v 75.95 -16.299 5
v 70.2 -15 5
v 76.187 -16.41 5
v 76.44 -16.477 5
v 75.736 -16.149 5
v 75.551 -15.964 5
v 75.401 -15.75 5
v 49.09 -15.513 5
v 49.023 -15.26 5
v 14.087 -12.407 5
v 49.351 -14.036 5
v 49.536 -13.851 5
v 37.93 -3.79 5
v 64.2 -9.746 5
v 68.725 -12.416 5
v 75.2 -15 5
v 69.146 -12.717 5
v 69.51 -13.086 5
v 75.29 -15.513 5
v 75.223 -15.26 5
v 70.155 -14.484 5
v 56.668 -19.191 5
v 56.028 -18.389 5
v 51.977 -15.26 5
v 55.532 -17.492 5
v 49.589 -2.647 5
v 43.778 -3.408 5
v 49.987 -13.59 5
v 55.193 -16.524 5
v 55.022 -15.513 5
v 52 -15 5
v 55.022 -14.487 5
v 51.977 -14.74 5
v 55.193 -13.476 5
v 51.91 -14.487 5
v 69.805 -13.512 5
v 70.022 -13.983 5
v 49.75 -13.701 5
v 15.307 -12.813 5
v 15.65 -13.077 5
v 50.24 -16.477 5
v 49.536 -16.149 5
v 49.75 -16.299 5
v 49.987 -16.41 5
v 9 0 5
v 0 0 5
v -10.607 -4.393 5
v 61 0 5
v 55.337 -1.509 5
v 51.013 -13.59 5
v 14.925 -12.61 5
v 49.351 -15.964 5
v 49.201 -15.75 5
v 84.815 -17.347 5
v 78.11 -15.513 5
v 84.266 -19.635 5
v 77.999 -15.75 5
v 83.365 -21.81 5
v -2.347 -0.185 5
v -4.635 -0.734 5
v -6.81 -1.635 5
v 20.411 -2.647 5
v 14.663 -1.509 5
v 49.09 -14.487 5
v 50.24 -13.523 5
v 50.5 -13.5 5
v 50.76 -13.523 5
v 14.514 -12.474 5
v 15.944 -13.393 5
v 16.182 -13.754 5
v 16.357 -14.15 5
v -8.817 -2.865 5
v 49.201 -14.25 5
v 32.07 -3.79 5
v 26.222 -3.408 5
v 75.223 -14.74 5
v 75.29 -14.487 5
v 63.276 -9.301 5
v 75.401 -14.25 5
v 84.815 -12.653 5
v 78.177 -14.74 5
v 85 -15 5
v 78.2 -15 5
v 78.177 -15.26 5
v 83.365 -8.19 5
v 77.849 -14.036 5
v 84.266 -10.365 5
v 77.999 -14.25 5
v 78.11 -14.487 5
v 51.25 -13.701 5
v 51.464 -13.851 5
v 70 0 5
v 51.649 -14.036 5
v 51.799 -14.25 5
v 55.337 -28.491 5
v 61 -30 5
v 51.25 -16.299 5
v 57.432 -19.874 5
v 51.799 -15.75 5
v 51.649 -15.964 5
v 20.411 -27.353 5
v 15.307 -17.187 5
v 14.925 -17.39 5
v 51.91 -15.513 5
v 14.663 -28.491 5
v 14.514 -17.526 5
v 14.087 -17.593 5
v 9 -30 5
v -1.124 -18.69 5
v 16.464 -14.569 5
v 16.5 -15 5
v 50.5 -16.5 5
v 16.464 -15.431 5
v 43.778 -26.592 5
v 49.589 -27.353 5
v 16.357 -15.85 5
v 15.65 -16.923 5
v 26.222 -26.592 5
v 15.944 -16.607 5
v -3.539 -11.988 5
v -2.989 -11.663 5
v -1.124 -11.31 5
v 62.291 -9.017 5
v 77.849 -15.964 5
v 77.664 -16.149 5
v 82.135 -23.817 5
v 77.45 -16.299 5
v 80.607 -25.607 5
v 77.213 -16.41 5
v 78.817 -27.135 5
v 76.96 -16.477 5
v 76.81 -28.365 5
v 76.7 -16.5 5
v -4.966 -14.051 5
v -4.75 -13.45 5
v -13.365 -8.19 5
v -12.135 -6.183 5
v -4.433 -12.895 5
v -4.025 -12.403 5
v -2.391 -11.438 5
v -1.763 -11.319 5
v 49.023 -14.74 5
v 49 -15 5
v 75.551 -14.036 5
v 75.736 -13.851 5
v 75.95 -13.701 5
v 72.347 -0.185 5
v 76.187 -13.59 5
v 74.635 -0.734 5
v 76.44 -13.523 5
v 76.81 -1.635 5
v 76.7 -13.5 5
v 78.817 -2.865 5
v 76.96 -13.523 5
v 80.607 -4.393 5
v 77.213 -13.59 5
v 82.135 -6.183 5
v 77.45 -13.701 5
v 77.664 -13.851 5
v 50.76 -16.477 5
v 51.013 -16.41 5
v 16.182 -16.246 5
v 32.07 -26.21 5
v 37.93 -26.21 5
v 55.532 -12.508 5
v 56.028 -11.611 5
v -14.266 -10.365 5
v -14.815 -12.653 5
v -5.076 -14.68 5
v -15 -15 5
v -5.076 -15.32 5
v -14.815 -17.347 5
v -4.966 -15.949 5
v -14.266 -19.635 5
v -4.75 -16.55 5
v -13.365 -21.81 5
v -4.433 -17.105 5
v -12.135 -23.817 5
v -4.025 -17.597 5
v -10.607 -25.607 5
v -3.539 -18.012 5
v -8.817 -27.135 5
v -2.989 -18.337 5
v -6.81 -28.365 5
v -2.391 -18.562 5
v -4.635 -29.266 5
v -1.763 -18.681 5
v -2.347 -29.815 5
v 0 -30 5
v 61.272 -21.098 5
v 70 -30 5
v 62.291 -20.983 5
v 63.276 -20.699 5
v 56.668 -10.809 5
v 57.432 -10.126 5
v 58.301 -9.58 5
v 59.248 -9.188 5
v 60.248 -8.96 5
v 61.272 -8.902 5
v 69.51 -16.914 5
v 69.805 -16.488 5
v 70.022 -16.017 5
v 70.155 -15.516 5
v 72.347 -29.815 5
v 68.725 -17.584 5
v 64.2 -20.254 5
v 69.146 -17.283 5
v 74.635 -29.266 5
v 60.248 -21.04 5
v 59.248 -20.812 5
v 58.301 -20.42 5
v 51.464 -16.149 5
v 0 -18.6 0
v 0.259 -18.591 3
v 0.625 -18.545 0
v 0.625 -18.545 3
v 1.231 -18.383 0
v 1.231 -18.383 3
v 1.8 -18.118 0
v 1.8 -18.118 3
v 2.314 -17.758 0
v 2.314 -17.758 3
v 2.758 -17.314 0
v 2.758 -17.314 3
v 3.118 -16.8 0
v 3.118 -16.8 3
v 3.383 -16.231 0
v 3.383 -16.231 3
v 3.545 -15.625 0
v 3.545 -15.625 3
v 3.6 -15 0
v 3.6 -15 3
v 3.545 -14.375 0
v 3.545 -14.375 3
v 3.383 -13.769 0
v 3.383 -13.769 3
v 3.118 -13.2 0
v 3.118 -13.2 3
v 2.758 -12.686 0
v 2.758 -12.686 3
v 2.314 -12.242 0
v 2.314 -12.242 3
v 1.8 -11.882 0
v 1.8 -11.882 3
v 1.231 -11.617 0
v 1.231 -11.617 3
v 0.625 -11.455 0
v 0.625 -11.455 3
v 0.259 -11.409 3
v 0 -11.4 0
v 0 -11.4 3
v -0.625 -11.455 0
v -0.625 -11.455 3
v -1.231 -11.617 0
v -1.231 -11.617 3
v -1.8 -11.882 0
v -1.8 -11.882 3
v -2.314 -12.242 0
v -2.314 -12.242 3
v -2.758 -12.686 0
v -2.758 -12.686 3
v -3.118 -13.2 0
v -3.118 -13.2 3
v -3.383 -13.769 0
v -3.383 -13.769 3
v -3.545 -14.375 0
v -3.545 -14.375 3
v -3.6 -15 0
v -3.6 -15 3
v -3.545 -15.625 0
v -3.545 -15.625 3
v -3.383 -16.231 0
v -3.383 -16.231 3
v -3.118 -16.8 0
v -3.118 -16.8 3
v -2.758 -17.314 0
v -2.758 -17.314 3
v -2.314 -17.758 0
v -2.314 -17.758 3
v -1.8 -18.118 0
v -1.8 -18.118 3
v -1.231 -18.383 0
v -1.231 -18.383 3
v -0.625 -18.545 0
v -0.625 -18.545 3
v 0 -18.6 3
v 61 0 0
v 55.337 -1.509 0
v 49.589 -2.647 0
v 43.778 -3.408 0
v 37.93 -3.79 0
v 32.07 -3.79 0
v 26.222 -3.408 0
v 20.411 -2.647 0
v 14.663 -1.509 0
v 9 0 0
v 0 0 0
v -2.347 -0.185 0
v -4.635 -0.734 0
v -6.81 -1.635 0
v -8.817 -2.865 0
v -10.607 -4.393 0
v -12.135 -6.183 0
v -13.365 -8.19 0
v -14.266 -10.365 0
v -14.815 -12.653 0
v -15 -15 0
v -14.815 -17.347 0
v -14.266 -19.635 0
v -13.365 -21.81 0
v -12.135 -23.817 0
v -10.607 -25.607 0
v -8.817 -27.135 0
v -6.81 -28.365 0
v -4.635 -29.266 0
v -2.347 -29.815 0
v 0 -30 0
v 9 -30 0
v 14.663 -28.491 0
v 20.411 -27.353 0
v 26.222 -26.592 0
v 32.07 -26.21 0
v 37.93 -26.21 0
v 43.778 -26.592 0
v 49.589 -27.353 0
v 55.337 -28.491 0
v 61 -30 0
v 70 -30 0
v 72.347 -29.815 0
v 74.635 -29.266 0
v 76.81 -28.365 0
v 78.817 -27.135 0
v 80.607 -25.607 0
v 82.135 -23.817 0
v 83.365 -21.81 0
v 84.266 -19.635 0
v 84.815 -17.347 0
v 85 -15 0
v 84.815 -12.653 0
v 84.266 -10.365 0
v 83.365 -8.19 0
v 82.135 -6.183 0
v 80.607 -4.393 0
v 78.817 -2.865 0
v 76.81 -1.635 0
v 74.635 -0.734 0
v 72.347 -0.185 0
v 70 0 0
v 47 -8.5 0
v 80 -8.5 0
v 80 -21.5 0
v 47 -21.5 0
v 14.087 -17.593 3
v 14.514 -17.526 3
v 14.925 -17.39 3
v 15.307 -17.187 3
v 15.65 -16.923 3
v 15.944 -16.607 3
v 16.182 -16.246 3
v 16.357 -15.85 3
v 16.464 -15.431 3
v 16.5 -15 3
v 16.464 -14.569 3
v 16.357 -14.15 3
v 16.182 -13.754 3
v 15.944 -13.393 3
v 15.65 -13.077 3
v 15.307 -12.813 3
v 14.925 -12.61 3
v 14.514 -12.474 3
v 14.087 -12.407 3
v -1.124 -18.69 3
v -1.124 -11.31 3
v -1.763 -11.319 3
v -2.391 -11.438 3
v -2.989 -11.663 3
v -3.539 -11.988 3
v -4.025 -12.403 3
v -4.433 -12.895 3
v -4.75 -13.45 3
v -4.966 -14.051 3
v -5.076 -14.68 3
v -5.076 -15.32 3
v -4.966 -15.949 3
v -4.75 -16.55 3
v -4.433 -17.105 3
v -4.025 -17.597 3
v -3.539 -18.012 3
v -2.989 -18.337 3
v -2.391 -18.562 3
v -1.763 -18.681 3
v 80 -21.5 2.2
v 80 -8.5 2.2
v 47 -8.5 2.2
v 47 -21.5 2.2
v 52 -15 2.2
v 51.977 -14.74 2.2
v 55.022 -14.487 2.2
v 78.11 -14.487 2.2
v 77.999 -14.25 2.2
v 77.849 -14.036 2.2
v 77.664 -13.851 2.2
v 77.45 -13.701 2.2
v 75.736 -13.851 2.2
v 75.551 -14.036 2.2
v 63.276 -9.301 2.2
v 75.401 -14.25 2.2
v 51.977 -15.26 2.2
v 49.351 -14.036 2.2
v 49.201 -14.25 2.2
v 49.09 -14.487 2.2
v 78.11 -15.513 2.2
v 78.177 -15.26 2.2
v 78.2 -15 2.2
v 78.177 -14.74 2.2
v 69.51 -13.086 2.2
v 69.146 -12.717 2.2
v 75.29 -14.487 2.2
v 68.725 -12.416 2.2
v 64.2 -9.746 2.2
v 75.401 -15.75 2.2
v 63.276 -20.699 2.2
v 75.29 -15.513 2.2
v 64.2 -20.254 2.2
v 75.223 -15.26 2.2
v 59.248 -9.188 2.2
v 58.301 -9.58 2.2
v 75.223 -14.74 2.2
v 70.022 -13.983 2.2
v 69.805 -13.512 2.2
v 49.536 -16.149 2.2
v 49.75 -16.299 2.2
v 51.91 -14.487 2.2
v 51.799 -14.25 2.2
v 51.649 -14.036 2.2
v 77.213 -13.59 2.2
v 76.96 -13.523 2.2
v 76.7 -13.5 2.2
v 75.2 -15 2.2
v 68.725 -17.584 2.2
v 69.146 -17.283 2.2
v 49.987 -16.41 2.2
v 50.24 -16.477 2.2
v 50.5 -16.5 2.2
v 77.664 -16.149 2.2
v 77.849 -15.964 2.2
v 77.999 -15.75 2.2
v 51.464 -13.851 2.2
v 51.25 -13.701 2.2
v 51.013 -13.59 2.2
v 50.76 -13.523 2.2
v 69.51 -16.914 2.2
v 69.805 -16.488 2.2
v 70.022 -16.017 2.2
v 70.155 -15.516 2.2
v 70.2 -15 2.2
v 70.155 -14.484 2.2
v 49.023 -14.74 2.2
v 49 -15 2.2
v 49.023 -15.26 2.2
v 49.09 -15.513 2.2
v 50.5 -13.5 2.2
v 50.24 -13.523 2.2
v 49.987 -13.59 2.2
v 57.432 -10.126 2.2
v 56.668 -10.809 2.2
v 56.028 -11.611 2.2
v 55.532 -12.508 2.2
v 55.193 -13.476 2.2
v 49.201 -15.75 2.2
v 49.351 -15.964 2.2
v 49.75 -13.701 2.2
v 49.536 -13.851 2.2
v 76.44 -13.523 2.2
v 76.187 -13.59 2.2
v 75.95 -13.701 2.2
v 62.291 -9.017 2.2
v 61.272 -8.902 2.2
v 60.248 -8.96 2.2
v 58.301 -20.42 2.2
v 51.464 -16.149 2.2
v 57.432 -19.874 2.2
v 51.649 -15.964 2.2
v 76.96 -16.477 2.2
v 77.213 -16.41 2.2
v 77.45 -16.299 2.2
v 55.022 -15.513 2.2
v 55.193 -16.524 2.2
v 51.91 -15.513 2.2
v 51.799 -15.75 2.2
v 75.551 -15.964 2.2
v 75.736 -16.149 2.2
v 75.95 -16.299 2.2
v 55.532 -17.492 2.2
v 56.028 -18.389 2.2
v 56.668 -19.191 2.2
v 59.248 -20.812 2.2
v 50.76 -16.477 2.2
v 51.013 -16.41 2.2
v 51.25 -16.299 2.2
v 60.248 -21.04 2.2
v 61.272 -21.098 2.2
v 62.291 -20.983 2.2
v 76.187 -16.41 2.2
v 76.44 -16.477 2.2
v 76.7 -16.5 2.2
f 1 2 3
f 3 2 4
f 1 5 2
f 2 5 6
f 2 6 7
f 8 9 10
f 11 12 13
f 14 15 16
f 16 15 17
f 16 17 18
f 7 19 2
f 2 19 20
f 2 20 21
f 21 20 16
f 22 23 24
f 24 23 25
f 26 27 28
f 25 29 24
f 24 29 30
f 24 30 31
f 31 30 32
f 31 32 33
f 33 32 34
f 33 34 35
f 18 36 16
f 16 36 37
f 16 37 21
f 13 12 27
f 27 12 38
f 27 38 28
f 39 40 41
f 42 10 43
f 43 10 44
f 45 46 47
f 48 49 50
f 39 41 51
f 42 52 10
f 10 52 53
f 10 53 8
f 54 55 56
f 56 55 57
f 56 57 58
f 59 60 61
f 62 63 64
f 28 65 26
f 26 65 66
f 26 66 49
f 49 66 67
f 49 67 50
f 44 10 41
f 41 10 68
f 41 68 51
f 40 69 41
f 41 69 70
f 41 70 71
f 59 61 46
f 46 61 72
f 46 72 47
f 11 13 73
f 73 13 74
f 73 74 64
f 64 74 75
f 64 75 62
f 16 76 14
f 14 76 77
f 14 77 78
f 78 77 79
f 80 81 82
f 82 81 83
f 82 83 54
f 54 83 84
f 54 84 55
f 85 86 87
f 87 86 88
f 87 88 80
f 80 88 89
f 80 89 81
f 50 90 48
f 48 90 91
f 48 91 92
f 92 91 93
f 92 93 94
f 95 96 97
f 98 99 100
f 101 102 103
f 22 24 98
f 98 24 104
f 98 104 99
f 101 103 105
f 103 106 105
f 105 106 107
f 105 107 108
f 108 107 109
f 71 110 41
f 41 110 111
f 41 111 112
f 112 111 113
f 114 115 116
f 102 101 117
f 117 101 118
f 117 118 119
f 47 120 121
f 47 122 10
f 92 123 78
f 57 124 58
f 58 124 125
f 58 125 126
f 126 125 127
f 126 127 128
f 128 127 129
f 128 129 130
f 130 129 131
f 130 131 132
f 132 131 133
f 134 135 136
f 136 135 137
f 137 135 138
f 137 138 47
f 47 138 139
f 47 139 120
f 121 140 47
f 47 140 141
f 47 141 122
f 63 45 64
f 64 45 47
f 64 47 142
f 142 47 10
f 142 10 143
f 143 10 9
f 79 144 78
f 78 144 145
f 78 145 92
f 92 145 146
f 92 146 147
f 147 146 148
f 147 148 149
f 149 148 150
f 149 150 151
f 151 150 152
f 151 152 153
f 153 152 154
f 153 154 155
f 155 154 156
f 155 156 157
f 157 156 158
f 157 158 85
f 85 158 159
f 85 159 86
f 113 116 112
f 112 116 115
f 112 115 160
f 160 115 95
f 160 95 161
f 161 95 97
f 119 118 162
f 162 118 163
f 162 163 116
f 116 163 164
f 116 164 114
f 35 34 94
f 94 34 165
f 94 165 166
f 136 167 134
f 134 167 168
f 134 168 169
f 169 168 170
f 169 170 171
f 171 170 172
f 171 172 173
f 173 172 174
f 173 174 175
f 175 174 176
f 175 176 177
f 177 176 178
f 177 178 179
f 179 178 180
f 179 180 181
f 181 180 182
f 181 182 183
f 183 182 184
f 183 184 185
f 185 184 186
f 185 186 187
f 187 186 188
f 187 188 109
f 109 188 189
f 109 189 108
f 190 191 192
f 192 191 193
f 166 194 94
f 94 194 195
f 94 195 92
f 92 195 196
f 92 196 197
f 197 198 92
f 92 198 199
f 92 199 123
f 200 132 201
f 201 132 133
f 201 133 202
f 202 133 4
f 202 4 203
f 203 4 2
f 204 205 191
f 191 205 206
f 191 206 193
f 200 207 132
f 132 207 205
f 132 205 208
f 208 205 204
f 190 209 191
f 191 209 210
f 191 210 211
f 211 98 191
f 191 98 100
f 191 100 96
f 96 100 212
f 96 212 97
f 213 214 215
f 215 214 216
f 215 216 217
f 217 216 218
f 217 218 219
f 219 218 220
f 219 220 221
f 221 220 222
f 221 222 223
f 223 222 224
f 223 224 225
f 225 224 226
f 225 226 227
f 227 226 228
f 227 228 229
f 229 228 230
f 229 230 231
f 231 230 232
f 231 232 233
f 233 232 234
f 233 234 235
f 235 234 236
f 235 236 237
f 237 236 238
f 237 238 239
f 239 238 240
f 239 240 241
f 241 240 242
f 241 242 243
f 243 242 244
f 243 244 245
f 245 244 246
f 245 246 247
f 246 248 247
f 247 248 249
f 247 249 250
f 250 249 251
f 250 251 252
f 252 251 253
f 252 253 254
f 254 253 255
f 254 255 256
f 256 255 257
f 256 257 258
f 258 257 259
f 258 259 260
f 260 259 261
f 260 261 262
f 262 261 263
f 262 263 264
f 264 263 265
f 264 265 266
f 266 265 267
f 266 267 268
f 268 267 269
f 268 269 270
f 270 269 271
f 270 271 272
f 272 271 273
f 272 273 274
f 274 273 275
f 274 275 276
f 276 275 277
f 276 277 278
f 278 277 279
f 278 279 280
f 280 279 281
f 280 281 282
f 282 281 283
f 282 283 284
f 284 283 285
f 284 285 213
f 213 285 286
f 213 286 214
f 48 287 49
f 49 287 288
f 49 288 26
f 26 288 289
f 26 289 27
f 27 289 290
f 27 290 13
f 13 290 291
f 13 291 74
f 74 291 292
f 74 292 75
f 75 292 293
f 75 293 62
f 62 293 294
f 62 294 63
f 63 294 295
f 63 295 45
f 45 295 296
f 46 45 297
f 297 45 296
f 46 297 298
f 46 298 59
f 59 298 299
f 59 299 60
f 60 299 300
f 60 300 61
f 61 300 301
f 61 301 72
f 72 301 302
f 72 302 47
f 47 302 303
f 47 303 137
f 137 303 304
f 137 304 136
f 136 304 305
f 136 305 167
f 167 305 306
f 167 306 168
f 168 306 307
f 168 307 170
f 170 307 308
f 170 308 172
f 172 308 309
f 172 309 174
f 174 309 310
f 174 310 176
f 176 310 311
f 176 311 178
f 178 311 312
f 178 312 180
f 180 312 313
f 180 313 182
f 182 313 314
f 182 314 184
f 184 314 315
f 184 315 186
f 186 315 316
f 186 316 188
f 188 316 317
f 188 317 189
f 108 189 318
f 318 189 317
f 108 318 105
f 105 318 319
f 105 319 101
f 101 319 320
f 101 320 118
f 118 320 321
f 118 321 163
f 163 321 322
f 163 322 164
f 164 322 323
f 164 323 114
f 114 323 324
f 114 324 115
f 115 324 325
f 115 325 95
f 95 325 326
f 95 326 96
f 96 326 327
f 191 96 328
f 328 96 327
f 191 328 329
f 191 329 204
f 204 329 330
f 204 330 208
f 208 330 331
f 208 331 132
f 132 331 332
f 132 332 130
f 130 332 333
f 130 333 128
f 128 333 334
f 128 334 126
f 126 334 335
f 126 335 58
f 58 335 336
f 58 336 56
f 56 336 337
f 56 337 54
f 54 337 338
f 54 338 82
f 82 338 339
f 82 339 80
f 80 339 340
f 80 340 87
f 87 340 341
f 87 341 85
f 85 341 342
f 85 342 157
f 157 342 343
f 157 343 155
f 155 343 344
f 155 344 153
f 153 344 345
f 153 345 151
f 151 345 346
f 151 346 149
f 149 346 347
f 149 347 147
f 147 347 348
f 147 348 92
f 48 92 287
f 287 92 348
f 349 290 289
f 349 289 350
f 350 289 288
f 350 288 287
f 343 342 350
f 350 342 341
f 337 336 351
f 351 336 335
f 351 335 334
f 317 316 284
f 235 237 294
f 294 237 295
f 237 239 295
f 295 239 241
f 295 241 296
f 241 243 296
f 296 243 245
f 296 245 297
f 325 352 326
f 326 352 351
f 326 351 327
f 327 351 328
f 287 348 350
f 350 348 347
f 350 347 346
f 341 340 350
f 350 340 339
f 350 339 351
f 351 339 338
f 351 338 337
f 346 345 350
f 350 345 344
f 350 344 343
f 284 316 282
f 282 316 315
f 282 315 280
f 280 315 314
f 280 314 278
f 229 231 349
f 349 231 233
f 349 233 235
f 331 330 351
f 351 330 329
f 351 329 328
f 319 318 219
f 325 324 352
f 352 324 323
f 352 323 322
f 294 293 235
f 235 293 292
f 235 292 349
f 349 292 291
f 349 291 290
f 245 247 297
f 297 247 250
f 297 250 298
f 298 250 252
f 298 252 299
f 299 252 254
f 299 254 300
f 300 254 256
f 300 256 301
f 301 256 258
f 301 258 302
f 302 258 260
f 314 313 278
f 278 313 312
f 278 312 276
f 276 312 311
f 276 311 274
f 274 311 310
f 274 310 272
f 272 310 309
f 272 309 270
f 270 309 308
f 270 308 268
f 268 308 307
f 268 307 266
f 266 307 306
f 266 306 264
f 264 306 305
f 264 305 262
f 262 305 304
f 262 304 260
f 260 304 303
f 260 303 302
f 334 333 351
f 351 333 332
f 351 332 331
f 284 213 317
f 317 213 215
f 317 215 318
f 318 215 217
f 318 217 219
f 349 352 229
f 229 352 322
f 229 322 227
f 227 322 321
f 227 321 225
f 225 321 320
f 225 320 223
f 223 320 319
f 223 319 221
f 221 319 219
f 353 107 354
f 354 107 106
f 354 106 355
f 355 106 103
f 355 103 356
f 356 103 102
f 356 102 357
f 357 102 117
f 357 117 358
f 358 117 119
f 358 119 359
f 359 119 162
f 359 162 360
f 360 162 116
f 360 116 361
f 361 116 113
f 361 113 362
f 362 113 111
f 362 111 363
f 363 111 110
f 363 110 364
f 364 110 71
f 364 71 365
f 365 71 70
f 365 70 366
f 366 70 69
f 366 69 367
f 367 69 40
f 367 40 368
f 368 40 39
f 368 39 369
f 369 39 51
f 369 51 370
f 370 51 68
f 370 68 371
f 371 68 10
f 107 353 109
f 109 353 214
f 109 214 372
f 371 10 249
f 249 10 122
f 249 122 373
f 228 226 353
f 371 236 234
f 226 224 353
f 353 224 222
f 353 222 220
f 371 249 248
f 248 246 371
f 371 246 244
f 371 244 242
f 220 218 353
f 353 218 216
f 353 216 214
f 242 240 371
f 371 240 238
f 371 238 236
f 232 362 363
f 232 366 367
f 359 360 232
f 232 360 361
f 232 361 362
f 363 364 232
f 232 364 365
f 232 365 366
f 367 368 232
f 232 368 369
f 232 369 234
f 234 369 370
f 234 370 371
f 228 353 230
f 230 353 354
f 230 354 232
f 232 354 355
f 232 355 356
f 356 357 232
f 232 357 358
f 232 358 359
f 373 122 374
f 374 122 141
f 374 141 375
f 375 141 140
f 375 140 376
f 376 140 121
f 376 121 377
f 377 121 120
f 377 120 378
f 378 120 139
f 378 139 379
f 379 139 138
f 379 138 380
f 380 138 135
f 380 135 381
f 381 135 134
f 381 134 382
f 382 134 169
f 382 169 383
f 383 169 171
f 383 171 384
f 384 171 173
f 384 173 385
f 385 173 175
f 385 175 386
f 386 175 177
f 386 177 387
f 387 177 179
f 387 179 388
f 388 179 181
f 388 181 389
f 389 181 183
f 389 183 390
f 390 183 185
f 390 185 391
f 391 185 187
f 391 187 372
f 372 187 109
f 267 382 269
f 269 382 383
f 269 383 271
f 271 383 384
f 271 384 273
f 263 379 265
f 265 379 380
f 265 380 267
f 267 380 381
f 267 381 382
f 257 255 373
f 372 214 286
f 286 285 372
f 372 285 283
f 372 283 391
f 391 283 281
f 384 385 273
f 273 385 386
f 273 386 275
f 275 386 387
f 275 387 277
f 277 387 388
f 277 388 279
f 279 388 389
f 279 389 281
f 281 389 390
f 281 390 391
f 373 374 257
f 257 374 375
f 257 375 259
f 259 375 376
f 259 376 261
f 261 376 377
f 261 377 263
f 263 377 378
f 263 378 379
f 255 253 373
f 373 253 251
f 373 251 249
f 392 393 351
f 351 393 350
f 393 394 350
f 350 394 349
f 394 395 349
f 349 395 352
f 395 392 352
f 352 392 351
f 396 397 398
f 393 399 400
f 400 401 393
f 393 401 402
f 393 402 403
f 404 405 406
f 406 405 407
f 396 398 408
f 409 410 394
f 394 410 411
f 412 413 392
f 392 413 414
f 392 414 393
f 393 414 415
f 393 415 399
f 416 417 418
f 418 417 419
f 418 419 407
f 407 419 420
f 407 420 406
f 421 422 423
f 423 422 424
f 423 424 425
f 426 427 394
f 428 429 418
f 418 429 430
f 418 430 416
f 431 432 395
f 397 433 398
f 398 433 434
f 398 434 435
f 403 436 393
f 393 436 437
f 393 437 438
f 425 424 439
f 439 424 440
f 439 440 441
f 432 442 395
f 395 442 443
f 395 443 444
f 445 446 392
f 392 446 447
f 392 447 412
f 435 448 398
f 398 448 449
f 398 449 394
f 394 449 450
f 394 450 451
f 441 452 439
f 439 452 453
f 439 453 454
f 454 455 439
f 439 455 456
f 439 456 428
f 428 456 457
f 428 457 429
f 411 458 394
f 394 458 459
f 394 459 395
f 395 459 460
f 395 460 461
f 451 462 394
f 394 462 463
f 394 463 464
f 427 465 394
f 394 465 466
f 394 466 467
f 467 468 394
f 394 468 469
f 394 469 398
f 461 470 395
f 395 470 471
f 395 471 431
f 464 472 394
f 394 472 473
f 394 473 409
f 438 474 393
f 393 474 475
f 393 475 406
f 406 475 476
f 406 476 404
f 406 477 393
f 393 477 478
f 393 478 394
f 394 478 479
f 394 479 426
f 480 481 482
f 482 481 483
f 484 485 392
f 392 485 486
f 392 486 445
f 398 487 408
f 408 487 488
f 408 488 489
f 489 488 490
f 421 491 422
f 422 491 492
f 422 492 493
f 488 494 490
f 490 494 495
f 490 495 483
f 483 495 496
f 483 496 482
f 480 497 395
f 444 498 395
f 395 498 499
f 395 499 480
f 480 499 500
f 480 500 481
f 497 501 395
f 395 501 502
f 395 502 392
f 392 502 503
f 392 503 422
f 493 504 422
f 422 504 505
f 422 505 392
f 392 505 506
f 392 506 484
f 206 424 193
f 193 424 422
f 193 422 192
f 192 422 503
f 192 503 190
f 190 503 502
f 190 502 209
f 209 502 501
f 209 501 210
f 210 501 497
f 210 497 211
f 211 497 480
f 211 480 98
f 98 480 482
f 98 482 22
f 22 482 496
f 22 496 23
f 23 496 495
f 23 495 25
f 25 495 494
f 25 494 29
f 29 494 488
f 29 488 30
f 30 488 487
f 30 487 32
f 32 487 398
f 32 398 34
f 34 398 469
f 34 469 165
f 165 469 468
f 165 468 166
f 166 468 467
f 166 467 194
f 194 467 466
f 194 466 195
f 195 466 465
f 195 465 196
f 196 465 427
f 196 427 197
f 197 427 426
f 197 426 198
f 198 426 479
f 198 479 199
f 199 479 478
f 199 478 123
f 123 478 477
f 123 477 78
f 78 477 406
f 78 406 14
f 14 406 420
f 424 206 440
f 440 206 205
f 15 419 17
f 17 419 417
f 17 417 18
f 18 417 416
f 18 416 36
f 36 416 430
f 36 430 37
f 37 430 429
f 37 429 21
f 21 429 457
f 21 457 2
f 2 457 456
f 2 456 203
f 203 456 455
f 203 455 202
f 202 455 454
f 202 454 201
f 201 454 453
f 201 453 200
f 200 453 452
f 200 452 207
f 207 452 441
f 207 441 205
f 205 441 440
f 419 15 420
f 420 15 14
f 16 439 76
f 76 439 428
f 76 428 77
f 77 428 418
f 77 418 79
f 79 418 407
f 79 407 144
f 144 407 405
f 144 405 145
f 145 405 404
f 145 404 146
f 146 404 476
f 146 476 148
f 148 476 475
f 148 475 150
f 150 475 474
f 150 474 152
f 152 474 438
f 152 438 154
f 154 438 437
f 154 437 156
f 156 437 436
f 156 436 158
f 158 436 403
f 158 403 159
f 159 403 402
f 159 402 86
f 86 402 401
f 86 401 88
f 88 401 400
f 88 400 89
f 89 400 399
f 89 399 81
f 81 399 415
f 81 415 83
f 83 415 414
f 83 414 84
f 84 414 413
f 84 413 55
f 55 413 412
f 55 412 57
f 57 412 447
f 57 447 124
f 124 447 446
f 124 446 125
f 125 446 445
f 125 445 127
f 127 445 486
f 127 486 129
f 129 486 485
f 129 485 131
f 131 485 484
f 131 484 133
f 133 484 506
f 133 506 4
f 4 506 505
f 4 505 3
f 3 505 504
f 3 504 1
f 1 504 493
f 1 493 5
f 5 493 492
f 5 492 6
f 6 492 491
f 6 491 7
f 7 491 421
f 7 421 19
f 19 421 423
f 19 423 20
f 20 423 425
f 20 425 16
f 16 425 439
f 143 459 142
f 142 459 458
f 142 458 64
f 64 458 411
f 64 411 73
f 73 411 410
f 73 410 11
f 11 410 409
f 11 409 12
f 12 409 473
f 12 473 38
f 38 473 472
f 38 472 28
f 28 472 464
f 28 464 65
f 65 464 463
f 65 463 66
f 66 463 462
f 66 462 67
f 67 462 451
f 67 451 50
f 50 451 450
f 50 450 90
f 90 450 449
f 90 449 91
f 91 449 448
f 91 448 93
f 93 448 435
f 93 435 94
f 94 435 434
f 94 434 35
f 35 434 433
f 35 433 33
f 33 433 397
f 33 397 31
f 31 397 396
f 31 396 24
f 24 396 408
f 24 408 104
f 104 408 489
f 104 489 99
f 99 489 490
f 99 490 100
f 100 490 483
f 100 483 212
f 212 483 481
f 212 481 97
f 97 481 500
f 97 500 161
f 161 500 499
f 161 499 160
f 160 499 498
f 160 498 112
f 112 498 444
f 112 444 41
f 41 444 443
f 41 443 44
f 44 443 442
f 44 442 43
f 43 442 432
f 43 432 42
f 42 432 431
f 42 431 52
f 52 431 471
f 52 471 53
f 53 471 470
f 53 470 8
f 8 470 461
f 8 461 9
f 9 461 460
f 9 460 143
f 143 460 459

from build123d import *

# Parameters (mm, degrees)
SKETCH1_R             = 3.6
BOSS_EXTRUDE1_DEPTH   = 5
CORTAR_EXTRUIR1_START = -2
CORTAR_EXTRUIR1_DEPTH = 2
CROQUIS3_W            = 33
CROQUIS3_H            = 13
CORTAR_EXTRUIR2_DEPTH = 2.2
CORTAR_EXTRUIR3_DEPTH = 3
CROQUIS6_R            = 1.5
CORTAR_EXTRUIR4_DEPTH = 3


with BuildPart() as part:
    # Sketch1 → Boss-Extrude1 (new body)
    with BuildSketch(Plane(origin=(0, 0, 0), x_dir=(-1, 0, 0), z_dir=(0, 0, -1))):
        with BuildLine():
            Line((-70, 0), (-61, 0))
            ThreePointArc((-61, 0), (-35, -3.837363086), (-9, 0))
            Line((-9, 0), (0, 0))
            ThreePointArc((0, 0), (15, -15), (0, -30))
            Line((0, -30), (-9, -30))
            ThreePointArc((-9, -30), (-35, -26.162636914), (-61, -30))
            Line((-61, -30), (-70, -30))
            ThreePointArc((-70, -30), (-85, -15), (-70, 0))
        make_face()
        with Locations(Location((0, -15, 0), (0, 0, 180))):
            Circle(SKETCH1_R, mode=Mode.SUBTRACT)
    extrude(amount=-BOSS_EXTRUDE1_DEPTH)

    # Croquis1 → Cortar-Extruir1 (cut)
    with BuildSketch(Plane.XY.offset(5).offset(CORTAR_EXTRUIR1_START)):
        with BuildLine():
            Line((14.08705036, -12.406737159), (0.258992817, -11.409328375))
            ThreePointArc((0.258992817, -11.409328375), (2.635562003, -12.547692326), (3.6, -15))
            ThreePointArc((3.6, -15), (2.635561992, -17.452307685), (0.258992787, -18.590671627))
            Line((0.258992787, -18.590671627), (14.08705036, -17.593262841))
            ThreePointArc((14.08705036, -17.593262841), (16.5, -15), (14.08705036, -12.406737159))
        make_face()
        with BuildLine():
            Line((0.258992817, -11.409328375), (-1.12381295, -11.309587495))
            ThreePointArc((-1.12381295, -11.309587495), (-5.09, -15), (-1.12381295, -18.690412505))
            Line((-1.12381295, -18.690412505), (0.258992787, -18.590671627))
            ThreePointArc((0.258992787, -18.590671627), (-3.6, -14.999999985), (0.258992817, -11.409328375))
        make_face()
    extrude(amount=CORTAR_EXTRUIR1_DEPTH, mode=Mode.SUBTRACT)

    # Croquis3 → Cortar-Extruir2 (cut)
    with BuildSketch(Plane(origin=(0, 0, 0), x_dir=(-1, 0, 0), z_dir=(0, 0, -1))):
        with Locations((-63.5, -15)):
            Rectangle(CROQUIS3_W, CROQUIS3_H)
    extrude(amount=-CORTAR_EXTRUIR2_DEPTH, mode=Mode.SUBTRACT)

    # Croquis4 → Cortar-Extruir3 (cut)
    with BuildSketch(Plane(origin=(0, 0, 2.2), x_dir=(-1, 0, 0), z_dir=(0, 0, -1))):
        with BuildLine():
            Line((-64.2, -9.746429785), (-68.724590164, -12.416276944))
            ThreePointArc((-68.724590164, -12.416276944), (-70.2, -15), (-68.724590164, -17.583723056))
            Line((-68.724590164, -17.583723056), (-64.2, -20.253570215))
            ThreePointArc((-64.2, -20.253570215), (-55, -15), (-64.2, -9.746429785))
        make_face()
    extrude(amount=-CORTAR_EXTRUIR3_DEPTH, mode=Mode.SUBTRACT)

    # Croquis6 → Cortar-Extruir4 (cut)
    with BuildSketch(Plane(origin=(0, 0, 2.2), x_dir=(-1, 0, 0), z_dir=(0, 0, -1))):
        with Locations((-50.5, -15)):
            Circle(CROQUIS6_R)
        with Locations((-76.7, -15)):
            Circle(CROQUIS6_R)
    extrude(amount=-CORTAR_EXTRUIR4_DEPTH, mode=Mode.SUBTRACT)


solid = part.part
